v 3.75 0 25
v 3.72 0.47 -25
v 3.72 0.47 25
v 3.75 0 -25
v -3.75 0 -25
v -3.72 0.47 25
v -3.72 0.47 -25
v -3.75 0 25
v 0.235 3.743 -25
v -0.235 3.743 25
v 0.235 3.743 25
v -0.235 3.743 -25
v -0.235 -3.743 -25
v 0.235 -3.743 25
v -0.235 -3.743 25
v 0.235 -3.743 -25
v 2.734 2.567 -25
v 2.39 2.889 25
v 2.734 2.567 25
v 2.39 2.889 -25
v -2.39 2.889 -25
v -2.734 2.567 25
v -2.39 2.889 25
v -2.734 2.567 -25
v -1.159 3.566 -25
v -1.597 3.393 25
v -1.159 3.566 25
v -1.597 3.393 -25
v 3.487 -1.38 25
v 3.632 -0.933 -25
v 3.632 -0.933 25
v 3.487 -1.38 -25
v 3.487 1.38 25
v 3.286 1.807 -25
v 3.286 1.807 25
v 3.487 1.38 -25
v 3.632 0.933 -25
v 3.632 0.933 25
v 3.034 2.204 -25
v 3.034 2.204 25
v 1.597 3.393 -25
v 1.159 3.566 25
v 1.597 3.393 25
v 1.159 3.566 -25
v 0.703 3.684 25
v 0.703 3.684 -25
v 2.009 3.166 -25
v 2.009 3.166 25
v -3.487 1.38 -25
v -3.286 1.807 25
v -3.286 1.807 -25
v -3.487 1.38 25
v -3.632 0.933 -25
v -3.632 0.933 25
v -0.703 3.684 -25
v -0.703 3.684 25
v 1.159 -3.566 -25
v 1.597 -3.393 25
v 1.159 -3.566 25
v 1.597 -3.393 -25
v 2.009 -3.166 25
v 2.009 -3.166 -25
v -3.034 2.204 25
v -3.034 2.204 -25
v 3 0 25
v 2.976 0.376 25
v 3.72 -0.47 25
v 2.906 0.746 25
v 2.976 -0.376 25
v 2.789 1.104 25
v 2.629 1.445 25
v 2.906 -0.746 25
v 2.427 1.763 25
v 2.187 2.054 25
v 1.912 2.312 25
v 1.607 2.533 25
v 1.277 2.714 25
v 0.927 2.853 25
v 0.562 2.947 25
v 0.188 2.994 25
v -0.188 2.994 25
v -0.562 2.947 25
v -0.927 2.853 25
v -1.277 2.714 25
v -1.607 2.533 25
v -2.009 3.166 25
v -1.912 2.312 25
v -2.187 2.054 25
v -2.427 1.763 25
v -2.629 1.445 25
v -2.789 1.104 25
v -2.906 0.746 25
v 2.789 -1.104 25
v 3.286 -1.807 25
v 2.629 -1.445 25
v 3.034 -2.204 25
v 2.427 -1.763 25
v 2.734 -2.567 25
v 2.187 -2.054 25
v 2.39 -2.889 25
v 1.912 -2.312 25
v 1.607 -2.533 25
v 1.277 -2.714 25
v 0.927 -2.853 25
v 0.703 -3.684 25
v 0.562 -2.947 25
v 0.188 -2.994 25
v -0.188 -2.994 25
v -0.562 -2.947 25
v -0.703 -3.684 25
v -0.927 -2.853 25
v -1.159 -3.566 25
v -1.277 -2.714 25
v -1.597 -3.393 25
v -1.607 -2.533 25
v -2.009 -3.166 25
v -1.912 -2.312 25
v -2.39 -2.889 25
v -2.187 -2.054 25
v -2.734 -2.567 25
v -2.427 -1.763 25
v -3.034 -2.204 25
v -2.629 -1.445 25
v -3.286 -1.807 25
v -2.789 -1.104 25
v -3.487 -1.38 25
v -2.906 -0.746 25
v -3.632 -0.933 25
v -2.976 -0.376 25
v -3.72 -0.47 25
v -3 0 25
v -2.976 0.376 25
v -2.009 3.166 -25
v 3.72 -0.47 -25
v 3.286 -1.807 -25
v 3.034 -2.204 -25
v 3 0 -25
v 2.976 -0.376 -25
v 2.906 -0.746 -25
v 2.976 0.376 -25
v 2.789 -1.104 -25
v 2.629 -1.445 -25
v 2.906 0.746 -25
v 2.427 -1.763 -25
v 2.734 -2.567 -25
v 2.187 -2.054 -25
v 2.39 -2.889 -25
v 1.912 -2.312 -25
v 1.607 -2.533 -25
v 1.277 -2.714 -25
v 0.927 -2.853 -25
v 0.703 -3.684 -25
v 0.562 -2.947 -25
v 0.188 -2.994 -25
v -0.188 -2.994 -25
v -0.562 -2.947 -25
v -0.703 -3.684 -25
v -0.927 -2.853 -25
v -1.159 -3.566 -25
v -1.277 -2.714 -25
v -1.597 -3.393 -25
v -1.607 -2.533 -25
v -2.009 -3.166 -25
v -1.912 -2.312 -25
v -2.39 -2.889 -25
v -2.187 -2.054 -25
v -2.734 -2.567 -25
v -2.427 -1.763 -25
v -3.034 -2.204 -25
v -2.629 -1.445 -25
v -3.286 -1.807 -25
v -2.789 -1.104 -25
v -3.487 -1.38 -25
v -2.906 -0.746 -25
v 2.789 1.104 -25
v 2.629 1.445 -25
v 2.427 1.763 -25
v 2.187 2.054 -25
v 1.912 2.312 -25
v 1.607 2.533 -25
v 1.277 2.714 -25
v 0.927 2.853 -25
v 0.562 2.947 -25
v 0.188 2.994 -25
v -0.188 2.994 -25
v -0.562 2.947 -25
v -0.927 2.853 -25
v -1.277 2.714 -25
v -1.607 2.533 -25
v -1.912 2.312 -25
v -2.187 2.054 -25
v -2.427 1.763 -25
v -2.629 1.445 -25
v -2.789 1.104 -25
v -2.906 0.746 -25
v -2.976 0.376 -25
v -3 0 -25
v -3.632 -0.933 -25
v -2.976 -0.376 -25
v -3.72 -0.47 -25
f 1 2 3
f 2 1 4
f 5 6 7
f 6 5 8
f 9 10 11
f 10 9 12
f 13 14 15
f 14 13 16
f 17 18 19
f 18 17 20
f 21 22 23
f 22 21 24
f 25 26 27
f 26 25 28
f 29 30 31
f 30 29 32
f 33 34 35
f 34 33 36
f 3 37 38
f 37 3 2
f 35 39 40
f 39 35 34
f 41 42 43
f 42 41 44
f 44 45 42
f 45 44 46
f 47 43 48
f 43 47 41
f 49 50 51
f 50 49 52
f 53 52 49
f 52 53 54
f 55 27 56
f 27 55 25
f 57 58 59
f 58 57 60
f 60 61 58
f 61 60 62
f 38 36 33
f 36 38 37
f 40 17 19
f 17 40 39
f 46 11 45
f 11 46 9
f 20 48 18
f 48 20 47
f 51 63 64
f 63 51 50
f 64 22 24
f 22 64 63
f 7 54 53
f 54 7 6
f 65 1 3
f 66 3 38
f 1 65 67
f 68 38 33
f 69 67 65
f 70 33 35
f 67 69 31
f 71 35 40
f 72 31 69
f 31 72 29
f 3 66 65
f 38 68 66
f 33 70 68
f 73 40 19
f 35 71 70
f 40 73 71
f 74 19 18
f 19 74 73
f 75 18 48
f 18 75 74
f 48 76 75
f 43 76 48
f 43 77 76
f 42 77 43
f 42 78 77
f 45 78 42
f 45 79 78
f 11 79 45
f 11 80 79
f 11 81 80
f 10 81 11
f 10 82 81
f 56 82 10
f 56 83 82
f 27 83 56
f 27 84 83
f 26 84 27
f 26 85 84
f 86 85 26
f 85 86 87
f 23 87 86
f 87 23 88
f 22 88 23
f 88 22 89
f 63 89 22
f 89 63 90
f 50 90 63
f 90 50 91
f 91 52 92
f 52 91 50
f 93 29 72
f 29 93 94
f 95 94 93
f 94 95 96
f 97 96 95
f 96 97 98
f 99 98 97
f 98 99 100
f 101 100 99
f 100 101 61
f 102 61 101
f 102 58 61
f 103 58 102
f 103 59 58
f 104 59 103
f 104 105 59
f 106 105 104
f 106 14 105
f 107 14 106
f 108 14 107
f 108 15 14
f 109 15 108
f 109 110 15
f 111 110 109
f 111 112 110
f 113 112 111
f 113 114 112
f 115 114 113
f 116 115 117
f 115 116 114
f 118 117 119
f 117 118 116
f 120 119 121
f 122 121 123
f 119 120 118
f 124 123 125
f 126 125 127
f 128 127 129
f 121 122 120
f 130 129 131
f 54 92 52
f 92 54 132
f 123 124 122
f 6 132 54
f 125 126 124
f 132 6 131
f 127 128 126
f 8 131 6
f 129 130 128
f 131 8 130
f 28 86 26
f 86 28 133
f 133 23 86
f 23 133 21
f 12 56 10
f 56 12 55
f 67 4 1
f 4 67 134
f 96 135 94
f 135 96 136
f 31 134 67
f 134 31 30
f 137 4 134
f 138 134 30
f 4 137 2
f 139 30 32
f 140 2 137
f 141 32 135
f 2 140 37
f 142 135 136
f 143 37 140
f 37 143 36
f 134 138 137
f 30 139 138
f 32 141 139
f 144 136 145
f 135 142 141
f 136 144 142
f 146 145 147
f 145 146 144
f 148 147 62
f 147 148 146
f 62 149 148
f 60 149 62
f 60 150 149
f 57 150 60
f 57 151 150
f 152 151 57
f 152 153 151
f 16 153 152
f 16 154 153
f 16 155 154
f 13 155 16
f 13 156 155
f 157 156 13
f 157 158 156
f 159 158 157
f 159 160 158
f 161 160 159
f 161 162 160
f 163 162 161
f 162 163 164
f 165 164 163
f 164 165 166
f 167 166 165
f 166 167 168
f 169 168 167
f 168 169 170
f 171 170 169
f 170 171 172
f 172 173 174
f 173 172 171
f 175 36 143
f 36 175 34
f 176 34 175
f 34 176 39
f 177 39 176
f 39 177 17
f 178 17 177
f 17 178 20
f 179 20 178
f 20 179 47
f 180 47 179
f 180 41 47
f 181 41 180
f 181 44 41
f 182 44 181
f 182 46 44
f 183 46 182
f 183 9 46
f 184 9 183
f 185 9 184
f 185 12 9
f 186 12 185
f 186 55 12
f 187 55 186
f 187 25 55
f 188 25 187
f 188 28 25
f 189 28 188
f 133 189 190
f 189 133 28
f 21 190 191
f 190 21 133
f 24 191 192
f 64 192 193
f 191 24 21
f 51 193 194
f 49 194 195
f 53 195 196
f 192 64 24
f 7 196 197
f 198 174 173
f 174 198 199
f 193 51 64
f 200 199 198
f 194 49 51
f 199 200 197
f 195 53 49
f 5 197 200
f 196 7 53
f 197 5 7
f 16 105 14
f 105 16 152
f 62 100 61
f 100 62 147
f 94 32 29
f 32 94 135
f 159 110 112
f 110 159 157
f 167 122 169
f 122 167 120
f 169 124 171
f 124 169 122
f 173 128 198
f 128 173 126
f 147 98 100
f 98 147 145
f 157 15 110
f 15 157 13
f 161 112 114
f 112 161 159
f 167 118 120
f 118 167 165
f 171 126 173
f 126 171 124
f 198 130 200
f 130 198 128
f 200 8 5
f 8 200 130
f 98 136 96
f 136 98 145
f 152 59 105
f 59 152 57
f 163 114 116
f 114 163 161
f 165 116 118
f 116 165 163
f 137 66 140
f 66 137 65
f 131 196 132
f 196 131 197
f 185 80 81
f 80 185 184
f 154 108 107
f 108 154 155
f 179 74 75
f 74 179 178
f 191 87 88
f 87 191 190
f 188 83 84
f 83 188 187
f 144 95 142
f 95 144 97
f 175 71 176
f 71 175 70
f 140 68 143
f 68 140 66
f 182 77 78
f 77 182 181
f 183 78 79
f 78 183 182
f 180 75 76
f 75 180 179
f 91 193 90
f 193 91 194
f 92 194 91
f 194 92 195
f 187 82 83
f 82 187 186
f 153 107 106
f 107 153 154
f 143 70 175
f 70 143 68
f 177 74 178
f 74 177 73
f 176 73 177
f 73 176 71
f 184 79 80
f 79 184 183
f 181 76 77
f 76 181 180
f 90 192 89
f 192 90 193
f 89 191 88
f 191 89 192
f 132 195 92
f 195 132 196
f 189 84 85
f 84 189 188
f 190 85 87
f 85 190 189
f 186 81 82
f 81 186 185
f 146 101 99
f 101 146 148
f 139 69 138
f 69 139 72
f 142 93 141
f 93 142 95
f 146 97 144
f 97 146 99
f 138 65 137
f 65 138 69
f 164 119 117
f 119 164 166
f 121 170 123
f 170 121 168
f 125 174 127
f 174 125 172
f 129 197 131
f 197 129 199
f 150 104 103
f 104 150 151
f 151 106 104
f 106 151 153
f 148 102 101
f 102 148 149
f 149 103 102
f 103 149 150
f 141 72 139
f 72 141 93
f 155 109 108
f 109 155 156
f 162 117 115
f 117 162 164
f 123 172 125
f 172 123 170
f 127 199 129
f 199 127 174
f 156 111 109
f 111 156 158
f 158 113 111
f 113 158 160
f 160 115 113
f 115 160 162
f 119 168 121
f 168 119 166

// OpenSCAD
$fn = 50;


difference() {
	union() {
		translate(v = [0, 0, -25.0000000000]) {
			cylinder(h = 50, r = 3.7500000000);
		}
	}
	union() {
		translate(v = [0, 0, -100.0000000000]) {
			cylinder(h = 200, r = 3.0000000000);
		}
	}
}
